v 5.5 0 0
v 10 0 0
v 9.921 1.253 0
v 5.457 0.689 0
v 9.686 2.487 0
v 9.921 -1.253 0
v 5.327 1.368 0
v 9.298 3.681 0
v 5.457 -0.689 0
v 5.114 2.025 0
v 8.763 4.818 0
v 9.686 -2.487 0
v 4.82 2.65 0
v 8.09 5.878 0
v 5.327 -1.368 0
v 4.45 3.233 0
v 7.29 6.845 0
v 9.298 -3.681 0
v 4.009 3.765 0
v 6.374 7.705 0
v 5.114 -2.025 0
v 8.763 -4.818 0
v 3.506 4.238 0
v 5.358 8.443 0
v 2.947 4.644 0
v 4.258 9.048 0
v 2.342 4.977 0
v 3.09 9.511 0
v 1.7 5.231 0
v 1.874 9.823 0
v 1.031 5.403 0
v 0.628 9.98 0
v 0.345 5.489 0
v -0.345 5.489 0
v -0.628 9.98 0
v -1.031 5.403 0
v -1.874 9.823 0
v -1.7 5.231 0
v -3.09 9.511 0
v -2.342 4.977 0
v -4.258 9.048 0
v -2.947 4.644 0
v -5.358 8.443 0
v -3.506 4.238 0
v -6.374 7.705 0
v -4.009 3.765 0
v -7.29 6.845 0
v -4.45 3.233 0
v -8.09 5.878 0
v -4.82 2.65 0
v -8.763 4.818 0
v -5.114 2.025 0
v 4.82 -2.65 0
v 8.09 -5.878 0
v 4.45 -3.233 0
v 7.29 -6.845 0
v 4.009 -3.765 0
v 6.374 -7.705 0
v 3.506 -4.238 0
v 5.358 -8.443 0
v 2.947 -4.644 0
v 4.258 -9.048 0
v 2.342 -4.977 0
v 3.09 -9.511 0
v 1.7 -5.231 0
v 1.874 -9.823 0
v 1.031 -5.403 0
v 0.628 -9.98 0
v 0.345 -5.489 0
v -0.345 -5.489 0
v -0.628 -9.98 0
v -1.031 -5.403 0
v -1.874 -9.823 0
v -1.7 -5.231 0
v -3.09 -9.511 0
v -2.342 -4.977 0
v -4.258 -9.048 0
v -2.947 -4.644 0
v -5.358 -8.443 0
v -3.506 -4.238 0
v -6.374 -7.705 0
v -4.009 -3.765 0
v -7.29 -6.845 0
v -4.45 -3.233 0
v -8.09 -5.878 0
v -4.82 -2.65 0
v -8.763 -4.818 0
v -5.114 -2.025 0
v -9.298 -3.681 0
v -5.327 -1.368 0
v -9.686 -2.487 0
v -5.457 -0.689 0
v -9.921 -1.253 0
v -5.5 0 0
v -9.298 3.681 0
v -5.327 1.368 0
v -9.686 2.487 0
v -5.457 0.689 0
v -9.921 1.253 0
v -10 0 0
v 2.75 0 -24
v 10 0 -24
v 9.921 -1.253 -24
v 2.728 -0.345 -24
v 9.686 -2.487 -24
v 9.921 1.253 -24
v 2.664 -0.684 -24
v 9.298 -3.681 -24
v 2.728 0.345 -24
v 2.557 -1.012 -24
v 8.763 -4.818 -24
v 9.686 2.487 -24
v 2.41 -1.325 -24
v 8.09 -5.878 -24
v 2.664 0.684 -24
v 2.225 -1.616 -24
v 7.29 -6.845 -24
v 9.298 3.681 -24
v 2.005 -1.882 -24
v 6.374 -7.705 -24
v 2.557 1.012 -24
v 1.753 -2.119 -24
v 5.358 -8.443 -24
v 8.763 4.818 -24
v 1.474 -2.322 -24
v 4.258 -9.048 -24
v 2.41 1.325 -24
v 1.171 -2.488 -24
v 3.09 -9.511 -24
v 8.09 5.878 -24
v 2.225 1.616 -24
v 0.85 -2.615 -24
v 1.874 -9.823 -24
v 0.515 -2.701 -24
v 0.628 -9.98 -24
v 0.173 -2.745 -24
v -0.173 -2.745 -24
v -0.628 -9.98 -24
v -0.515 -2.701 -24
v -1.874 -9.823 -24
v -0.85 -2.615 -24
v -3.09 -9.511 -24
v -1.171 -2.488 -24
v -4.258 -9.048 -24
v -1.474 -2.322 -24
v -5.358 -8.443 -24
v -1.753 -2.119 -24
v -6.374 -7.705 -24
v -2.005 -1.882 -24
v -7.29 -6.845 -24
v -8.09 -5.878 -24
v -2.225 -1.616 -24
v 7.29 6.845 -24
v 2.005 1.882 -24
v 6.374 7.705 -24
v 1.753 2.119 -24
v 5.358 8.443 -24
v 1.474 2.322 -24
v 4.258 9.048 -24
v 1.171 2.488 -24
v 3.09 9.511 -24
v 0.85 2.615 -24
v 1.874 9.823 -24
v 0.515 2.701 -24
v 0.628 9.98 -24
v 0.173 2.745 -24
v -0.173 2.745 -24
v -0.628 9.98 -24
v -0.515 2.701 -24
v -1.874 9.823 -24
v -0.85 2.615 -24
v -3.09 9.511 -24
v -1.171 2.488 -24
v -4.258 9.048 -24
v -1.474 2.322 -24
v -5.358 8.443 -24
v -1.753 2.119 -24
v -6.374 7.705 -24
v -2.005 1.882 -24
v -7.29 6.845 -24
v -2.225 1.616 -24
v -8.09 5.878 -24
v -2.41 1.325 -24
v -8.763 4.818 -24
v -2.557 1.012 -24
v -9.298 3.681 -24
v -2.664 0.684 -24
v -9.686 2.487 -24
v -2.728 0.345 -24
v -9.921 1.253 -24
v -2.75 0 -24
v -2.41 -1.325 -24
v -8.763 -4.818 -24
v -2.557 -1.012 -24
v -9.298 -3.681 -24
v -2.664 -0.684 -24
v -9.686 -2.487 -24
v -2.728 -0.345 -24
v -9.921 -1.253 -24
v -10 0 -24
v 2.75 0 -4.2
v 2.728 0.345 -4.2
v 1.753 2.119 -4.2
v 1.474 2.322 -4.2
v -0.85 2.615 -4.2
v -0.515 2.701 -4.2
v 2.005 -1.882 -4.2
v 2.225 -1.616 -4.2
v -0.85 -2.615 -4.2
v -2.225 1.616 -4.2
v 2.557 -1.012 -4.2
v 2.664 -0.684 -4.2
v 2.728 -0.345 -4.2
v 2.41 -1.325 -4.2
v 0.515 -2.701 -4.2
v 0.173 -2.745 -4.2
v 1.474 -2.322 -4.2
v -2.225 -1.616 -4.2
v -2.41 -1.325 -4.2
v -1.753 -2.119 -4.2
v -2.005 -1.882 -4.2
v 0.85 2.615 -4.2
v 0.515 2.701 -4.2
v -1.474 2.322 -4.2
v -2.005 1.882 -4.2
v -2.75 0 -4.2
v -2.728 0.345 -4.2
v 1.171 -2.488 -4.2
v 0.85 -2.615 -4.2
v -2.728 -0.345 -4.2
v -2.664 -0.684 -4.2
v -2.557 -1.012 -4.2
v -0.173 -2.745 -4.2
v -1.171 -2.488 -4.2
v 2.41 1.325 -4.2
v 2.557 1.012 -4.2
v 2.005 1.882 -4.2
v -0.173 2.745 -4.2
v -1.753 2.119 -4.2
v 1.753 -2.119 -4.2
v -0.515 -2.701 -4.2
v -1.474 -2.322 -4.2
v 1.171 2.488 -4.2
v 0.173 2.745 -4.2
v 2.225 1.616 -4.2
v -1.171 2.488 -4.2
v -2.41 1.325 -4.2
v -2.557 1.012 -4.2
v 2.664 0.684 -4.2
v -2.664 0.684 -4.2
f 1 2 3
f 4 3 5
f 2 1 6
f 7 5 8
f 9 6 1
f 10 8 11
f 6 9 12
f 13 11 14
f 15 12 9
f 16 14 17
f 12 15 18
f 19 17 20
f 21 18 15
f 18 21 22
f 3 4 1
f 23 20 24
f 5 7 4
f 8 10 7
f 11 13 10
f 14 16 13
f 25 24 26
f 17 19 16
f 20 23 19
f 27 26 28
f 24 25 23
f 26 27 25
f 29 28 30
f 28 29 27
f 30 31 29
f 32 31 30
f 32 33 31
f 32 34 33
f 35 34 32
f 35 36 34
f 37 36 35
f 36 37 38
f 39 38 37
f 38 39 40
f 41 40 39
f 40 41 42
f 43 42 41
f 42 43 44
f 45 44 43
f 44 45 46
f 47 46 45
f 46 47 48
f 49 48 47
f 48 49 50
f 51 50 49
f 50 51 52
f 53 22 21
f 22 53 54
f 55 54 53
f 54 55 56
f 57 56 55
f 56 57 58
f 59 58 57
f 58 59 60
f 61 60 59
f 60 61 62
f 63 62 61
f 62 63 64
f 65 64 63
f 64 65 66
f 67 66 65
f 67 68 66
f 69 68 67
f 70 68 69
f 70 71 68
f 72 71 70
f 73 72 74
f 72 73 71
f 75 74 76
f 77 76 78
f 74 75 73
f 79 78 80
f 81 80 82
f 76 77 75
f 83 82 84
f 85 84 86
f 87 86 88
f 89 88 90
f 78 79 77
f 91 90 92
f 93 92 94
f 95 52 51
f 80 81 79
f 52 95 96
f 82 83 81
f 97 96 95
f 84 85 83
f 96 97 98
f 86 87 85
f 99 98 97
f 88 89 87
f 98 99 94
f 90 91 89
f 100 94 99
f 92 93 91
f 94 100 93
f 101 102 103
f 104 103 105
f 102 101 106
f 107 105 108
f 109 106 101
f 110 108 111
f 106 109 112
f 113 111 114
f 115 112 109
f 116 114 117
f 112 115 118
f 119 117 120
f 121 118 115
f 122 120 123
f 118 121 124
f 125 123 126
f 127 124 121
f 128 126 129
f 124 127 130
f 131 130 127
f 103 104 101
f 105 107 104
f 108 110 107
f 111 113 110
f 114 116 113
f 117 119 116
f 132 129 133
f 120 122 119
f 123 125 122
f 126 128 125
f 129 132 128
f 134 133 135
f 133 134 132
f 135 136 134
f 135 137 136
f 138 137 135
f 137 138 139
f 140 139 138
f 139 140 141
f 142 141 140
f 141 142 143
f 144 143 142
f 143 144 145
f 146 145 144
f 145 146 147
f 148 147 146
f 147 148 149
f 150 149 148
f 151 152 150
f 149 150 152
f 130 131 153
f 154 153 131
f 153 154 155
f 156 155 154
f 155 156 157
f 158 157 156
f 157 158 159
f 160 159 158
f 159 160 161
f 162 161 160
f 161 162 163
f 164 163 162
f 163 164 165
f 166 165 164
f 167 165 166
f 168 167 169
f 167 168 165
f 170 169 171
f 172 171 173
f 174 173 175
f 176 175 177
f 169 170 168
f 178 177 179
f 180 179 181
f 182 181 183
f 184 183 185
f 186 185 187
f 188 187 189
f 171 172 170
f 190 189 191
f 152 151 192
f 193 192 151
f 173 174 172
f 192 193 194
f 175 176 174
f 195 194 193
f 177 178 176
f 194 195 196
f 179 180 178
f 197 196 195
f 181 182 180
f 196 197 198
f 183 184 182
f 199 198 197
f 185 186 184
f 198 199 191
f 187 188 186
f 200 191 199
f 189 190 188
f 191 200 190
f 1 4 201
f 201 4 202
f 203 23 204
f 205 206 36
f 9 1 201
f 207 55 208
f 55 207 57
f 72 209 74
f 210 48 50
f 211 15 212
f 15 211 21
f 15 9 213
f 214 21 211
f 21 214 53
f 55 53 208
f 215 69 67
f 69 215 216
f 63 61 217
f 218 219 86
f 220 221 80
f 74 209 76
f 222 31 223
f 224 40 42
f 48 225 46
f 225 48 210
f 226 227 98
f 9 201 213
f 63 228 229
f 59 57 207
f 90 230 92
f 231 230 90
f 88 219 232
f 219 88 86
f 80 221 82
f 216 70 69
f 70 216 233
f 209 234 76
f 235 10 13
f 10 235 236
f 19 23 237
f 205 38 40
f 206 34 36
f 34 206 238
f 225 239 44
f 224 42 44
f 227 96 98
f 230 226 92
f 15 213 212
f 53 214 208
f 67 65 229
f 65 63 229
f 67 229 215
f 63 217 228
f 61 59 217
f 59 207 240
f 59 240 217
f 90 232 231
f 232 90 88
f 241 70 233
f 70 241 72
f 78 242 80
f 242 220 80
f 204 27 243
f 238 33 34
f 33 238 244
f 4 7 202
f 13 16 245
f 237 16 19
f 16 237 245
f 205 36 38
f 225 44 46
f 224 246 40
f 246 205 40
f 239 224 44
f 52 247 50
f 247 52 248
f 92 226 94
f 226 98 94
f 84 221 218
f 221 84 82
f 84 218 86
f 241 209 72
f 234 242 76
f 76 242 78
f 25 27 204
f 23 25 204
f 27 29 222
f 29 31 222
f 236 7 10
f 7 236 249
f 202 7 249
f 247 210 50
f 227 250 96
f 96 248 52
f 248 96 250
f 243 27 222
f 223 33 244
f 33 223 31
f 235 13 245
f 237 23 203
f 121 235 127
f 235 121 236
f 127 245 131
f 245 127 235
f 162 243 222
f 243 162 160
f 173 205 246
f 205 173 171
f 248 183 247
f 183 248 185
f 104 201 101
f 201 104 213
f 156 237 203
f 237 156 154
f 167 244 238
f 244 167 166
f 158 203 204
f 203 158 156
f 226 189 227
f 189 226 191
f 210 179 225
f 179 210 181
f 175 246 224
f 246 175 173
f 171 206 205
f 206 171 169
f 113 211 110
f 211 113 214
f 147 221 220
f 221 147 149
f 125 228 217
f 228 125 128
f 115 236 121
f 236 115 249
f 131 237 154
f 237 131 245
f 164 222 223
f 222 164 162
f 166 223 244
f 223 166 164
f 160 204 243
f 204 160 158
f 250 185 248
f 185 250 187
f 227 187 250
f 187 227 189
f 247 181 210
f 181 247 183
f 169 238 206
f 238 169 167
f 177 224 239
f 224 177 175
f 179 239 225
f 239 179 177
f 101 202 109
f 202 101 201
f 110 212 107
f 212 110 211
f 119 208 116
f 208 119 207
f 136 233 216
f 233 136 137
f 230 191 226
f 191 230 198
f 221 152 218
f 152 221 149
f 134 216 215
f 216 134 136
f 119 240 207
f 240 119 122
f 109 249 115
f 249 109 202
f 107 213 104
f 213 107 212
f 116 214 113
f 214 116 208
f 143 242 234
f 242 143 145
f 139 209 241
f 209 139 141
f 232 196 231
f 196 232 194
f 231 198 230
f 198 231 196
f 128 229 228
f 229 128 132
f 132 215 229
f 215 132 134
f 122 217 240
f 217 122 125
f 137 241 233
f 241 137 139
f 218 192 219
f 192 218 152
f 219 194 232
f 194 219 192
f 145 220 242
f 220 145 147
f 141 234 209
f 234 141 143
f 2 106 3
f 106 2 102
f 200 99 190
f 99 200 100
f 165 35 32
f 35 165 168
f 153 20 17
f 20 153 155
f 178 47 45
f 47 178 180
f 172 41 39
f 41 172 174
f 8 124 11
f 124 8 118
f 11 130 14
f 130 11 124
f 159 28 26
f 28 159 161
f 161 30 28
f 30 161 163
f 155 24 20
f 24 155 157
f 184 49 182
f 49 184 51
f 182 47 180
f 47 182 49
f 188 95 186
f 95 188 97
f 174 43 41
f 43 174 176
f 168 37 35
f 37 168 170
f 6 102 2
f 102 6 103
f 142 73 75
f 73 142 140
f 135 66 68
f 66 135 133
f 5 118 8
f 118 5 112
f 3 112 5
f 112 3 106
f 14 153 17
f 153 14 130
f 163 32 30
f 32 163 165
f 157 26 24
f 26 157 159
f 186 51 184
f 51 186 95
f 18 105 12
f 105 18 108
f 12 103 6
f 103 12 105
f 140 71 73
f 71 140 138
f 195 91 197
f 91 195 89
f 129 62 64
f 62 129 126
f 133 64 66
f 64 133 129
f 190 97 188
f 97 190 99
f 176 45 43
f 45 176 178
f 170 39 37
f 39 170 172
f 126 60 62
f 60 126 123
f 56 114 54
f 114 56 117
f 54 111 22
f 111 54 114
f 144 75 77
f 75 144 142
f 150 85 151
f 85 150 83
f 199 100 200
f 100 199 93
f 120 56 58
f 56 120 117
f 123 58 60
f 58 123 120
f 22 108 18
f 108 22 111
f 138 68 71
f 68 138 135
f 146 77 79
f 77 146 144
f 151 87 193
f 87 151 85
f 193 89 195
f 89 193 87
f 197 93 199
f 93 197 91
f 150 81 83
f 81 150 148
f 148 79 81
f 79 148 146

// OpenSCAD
$fn = 50;


difference() {
	union() {
		translate(v = [0, 0, -24.0000000000]) {
			cylinder(h = 24, r = 10.0000000000);
		}
		cylinder(h = 0, r = 19.0000000000);
	}
	union() {
		translate(v = [0, 0, 0]) {
			rotate(a = [0, 0, 0]) {
				difference() {
					union() {
						#translate(v = [0, 0, -24.0000000000]) {
							cylinder(h = 24, r = 2.2500000000);
						}
						#translate(v = [0, 0, -4.2000000000]) {
							cylinder(h = 4.2000000000, r = 10.0000000000, r1 = 2.7500000000, r2 = 5.5000000000);
						}
						#translate(v = [0, 0, -24.0000000000]) {
							cylinder(h = 24, r = 2.7500000000);
						}
						#translate(v = [0, 0, -24.0000000000]) {
							cylinder(h = 24, r = 2.2500000000);
						}
					}
					union();
				}
			}
		}
	}
}
